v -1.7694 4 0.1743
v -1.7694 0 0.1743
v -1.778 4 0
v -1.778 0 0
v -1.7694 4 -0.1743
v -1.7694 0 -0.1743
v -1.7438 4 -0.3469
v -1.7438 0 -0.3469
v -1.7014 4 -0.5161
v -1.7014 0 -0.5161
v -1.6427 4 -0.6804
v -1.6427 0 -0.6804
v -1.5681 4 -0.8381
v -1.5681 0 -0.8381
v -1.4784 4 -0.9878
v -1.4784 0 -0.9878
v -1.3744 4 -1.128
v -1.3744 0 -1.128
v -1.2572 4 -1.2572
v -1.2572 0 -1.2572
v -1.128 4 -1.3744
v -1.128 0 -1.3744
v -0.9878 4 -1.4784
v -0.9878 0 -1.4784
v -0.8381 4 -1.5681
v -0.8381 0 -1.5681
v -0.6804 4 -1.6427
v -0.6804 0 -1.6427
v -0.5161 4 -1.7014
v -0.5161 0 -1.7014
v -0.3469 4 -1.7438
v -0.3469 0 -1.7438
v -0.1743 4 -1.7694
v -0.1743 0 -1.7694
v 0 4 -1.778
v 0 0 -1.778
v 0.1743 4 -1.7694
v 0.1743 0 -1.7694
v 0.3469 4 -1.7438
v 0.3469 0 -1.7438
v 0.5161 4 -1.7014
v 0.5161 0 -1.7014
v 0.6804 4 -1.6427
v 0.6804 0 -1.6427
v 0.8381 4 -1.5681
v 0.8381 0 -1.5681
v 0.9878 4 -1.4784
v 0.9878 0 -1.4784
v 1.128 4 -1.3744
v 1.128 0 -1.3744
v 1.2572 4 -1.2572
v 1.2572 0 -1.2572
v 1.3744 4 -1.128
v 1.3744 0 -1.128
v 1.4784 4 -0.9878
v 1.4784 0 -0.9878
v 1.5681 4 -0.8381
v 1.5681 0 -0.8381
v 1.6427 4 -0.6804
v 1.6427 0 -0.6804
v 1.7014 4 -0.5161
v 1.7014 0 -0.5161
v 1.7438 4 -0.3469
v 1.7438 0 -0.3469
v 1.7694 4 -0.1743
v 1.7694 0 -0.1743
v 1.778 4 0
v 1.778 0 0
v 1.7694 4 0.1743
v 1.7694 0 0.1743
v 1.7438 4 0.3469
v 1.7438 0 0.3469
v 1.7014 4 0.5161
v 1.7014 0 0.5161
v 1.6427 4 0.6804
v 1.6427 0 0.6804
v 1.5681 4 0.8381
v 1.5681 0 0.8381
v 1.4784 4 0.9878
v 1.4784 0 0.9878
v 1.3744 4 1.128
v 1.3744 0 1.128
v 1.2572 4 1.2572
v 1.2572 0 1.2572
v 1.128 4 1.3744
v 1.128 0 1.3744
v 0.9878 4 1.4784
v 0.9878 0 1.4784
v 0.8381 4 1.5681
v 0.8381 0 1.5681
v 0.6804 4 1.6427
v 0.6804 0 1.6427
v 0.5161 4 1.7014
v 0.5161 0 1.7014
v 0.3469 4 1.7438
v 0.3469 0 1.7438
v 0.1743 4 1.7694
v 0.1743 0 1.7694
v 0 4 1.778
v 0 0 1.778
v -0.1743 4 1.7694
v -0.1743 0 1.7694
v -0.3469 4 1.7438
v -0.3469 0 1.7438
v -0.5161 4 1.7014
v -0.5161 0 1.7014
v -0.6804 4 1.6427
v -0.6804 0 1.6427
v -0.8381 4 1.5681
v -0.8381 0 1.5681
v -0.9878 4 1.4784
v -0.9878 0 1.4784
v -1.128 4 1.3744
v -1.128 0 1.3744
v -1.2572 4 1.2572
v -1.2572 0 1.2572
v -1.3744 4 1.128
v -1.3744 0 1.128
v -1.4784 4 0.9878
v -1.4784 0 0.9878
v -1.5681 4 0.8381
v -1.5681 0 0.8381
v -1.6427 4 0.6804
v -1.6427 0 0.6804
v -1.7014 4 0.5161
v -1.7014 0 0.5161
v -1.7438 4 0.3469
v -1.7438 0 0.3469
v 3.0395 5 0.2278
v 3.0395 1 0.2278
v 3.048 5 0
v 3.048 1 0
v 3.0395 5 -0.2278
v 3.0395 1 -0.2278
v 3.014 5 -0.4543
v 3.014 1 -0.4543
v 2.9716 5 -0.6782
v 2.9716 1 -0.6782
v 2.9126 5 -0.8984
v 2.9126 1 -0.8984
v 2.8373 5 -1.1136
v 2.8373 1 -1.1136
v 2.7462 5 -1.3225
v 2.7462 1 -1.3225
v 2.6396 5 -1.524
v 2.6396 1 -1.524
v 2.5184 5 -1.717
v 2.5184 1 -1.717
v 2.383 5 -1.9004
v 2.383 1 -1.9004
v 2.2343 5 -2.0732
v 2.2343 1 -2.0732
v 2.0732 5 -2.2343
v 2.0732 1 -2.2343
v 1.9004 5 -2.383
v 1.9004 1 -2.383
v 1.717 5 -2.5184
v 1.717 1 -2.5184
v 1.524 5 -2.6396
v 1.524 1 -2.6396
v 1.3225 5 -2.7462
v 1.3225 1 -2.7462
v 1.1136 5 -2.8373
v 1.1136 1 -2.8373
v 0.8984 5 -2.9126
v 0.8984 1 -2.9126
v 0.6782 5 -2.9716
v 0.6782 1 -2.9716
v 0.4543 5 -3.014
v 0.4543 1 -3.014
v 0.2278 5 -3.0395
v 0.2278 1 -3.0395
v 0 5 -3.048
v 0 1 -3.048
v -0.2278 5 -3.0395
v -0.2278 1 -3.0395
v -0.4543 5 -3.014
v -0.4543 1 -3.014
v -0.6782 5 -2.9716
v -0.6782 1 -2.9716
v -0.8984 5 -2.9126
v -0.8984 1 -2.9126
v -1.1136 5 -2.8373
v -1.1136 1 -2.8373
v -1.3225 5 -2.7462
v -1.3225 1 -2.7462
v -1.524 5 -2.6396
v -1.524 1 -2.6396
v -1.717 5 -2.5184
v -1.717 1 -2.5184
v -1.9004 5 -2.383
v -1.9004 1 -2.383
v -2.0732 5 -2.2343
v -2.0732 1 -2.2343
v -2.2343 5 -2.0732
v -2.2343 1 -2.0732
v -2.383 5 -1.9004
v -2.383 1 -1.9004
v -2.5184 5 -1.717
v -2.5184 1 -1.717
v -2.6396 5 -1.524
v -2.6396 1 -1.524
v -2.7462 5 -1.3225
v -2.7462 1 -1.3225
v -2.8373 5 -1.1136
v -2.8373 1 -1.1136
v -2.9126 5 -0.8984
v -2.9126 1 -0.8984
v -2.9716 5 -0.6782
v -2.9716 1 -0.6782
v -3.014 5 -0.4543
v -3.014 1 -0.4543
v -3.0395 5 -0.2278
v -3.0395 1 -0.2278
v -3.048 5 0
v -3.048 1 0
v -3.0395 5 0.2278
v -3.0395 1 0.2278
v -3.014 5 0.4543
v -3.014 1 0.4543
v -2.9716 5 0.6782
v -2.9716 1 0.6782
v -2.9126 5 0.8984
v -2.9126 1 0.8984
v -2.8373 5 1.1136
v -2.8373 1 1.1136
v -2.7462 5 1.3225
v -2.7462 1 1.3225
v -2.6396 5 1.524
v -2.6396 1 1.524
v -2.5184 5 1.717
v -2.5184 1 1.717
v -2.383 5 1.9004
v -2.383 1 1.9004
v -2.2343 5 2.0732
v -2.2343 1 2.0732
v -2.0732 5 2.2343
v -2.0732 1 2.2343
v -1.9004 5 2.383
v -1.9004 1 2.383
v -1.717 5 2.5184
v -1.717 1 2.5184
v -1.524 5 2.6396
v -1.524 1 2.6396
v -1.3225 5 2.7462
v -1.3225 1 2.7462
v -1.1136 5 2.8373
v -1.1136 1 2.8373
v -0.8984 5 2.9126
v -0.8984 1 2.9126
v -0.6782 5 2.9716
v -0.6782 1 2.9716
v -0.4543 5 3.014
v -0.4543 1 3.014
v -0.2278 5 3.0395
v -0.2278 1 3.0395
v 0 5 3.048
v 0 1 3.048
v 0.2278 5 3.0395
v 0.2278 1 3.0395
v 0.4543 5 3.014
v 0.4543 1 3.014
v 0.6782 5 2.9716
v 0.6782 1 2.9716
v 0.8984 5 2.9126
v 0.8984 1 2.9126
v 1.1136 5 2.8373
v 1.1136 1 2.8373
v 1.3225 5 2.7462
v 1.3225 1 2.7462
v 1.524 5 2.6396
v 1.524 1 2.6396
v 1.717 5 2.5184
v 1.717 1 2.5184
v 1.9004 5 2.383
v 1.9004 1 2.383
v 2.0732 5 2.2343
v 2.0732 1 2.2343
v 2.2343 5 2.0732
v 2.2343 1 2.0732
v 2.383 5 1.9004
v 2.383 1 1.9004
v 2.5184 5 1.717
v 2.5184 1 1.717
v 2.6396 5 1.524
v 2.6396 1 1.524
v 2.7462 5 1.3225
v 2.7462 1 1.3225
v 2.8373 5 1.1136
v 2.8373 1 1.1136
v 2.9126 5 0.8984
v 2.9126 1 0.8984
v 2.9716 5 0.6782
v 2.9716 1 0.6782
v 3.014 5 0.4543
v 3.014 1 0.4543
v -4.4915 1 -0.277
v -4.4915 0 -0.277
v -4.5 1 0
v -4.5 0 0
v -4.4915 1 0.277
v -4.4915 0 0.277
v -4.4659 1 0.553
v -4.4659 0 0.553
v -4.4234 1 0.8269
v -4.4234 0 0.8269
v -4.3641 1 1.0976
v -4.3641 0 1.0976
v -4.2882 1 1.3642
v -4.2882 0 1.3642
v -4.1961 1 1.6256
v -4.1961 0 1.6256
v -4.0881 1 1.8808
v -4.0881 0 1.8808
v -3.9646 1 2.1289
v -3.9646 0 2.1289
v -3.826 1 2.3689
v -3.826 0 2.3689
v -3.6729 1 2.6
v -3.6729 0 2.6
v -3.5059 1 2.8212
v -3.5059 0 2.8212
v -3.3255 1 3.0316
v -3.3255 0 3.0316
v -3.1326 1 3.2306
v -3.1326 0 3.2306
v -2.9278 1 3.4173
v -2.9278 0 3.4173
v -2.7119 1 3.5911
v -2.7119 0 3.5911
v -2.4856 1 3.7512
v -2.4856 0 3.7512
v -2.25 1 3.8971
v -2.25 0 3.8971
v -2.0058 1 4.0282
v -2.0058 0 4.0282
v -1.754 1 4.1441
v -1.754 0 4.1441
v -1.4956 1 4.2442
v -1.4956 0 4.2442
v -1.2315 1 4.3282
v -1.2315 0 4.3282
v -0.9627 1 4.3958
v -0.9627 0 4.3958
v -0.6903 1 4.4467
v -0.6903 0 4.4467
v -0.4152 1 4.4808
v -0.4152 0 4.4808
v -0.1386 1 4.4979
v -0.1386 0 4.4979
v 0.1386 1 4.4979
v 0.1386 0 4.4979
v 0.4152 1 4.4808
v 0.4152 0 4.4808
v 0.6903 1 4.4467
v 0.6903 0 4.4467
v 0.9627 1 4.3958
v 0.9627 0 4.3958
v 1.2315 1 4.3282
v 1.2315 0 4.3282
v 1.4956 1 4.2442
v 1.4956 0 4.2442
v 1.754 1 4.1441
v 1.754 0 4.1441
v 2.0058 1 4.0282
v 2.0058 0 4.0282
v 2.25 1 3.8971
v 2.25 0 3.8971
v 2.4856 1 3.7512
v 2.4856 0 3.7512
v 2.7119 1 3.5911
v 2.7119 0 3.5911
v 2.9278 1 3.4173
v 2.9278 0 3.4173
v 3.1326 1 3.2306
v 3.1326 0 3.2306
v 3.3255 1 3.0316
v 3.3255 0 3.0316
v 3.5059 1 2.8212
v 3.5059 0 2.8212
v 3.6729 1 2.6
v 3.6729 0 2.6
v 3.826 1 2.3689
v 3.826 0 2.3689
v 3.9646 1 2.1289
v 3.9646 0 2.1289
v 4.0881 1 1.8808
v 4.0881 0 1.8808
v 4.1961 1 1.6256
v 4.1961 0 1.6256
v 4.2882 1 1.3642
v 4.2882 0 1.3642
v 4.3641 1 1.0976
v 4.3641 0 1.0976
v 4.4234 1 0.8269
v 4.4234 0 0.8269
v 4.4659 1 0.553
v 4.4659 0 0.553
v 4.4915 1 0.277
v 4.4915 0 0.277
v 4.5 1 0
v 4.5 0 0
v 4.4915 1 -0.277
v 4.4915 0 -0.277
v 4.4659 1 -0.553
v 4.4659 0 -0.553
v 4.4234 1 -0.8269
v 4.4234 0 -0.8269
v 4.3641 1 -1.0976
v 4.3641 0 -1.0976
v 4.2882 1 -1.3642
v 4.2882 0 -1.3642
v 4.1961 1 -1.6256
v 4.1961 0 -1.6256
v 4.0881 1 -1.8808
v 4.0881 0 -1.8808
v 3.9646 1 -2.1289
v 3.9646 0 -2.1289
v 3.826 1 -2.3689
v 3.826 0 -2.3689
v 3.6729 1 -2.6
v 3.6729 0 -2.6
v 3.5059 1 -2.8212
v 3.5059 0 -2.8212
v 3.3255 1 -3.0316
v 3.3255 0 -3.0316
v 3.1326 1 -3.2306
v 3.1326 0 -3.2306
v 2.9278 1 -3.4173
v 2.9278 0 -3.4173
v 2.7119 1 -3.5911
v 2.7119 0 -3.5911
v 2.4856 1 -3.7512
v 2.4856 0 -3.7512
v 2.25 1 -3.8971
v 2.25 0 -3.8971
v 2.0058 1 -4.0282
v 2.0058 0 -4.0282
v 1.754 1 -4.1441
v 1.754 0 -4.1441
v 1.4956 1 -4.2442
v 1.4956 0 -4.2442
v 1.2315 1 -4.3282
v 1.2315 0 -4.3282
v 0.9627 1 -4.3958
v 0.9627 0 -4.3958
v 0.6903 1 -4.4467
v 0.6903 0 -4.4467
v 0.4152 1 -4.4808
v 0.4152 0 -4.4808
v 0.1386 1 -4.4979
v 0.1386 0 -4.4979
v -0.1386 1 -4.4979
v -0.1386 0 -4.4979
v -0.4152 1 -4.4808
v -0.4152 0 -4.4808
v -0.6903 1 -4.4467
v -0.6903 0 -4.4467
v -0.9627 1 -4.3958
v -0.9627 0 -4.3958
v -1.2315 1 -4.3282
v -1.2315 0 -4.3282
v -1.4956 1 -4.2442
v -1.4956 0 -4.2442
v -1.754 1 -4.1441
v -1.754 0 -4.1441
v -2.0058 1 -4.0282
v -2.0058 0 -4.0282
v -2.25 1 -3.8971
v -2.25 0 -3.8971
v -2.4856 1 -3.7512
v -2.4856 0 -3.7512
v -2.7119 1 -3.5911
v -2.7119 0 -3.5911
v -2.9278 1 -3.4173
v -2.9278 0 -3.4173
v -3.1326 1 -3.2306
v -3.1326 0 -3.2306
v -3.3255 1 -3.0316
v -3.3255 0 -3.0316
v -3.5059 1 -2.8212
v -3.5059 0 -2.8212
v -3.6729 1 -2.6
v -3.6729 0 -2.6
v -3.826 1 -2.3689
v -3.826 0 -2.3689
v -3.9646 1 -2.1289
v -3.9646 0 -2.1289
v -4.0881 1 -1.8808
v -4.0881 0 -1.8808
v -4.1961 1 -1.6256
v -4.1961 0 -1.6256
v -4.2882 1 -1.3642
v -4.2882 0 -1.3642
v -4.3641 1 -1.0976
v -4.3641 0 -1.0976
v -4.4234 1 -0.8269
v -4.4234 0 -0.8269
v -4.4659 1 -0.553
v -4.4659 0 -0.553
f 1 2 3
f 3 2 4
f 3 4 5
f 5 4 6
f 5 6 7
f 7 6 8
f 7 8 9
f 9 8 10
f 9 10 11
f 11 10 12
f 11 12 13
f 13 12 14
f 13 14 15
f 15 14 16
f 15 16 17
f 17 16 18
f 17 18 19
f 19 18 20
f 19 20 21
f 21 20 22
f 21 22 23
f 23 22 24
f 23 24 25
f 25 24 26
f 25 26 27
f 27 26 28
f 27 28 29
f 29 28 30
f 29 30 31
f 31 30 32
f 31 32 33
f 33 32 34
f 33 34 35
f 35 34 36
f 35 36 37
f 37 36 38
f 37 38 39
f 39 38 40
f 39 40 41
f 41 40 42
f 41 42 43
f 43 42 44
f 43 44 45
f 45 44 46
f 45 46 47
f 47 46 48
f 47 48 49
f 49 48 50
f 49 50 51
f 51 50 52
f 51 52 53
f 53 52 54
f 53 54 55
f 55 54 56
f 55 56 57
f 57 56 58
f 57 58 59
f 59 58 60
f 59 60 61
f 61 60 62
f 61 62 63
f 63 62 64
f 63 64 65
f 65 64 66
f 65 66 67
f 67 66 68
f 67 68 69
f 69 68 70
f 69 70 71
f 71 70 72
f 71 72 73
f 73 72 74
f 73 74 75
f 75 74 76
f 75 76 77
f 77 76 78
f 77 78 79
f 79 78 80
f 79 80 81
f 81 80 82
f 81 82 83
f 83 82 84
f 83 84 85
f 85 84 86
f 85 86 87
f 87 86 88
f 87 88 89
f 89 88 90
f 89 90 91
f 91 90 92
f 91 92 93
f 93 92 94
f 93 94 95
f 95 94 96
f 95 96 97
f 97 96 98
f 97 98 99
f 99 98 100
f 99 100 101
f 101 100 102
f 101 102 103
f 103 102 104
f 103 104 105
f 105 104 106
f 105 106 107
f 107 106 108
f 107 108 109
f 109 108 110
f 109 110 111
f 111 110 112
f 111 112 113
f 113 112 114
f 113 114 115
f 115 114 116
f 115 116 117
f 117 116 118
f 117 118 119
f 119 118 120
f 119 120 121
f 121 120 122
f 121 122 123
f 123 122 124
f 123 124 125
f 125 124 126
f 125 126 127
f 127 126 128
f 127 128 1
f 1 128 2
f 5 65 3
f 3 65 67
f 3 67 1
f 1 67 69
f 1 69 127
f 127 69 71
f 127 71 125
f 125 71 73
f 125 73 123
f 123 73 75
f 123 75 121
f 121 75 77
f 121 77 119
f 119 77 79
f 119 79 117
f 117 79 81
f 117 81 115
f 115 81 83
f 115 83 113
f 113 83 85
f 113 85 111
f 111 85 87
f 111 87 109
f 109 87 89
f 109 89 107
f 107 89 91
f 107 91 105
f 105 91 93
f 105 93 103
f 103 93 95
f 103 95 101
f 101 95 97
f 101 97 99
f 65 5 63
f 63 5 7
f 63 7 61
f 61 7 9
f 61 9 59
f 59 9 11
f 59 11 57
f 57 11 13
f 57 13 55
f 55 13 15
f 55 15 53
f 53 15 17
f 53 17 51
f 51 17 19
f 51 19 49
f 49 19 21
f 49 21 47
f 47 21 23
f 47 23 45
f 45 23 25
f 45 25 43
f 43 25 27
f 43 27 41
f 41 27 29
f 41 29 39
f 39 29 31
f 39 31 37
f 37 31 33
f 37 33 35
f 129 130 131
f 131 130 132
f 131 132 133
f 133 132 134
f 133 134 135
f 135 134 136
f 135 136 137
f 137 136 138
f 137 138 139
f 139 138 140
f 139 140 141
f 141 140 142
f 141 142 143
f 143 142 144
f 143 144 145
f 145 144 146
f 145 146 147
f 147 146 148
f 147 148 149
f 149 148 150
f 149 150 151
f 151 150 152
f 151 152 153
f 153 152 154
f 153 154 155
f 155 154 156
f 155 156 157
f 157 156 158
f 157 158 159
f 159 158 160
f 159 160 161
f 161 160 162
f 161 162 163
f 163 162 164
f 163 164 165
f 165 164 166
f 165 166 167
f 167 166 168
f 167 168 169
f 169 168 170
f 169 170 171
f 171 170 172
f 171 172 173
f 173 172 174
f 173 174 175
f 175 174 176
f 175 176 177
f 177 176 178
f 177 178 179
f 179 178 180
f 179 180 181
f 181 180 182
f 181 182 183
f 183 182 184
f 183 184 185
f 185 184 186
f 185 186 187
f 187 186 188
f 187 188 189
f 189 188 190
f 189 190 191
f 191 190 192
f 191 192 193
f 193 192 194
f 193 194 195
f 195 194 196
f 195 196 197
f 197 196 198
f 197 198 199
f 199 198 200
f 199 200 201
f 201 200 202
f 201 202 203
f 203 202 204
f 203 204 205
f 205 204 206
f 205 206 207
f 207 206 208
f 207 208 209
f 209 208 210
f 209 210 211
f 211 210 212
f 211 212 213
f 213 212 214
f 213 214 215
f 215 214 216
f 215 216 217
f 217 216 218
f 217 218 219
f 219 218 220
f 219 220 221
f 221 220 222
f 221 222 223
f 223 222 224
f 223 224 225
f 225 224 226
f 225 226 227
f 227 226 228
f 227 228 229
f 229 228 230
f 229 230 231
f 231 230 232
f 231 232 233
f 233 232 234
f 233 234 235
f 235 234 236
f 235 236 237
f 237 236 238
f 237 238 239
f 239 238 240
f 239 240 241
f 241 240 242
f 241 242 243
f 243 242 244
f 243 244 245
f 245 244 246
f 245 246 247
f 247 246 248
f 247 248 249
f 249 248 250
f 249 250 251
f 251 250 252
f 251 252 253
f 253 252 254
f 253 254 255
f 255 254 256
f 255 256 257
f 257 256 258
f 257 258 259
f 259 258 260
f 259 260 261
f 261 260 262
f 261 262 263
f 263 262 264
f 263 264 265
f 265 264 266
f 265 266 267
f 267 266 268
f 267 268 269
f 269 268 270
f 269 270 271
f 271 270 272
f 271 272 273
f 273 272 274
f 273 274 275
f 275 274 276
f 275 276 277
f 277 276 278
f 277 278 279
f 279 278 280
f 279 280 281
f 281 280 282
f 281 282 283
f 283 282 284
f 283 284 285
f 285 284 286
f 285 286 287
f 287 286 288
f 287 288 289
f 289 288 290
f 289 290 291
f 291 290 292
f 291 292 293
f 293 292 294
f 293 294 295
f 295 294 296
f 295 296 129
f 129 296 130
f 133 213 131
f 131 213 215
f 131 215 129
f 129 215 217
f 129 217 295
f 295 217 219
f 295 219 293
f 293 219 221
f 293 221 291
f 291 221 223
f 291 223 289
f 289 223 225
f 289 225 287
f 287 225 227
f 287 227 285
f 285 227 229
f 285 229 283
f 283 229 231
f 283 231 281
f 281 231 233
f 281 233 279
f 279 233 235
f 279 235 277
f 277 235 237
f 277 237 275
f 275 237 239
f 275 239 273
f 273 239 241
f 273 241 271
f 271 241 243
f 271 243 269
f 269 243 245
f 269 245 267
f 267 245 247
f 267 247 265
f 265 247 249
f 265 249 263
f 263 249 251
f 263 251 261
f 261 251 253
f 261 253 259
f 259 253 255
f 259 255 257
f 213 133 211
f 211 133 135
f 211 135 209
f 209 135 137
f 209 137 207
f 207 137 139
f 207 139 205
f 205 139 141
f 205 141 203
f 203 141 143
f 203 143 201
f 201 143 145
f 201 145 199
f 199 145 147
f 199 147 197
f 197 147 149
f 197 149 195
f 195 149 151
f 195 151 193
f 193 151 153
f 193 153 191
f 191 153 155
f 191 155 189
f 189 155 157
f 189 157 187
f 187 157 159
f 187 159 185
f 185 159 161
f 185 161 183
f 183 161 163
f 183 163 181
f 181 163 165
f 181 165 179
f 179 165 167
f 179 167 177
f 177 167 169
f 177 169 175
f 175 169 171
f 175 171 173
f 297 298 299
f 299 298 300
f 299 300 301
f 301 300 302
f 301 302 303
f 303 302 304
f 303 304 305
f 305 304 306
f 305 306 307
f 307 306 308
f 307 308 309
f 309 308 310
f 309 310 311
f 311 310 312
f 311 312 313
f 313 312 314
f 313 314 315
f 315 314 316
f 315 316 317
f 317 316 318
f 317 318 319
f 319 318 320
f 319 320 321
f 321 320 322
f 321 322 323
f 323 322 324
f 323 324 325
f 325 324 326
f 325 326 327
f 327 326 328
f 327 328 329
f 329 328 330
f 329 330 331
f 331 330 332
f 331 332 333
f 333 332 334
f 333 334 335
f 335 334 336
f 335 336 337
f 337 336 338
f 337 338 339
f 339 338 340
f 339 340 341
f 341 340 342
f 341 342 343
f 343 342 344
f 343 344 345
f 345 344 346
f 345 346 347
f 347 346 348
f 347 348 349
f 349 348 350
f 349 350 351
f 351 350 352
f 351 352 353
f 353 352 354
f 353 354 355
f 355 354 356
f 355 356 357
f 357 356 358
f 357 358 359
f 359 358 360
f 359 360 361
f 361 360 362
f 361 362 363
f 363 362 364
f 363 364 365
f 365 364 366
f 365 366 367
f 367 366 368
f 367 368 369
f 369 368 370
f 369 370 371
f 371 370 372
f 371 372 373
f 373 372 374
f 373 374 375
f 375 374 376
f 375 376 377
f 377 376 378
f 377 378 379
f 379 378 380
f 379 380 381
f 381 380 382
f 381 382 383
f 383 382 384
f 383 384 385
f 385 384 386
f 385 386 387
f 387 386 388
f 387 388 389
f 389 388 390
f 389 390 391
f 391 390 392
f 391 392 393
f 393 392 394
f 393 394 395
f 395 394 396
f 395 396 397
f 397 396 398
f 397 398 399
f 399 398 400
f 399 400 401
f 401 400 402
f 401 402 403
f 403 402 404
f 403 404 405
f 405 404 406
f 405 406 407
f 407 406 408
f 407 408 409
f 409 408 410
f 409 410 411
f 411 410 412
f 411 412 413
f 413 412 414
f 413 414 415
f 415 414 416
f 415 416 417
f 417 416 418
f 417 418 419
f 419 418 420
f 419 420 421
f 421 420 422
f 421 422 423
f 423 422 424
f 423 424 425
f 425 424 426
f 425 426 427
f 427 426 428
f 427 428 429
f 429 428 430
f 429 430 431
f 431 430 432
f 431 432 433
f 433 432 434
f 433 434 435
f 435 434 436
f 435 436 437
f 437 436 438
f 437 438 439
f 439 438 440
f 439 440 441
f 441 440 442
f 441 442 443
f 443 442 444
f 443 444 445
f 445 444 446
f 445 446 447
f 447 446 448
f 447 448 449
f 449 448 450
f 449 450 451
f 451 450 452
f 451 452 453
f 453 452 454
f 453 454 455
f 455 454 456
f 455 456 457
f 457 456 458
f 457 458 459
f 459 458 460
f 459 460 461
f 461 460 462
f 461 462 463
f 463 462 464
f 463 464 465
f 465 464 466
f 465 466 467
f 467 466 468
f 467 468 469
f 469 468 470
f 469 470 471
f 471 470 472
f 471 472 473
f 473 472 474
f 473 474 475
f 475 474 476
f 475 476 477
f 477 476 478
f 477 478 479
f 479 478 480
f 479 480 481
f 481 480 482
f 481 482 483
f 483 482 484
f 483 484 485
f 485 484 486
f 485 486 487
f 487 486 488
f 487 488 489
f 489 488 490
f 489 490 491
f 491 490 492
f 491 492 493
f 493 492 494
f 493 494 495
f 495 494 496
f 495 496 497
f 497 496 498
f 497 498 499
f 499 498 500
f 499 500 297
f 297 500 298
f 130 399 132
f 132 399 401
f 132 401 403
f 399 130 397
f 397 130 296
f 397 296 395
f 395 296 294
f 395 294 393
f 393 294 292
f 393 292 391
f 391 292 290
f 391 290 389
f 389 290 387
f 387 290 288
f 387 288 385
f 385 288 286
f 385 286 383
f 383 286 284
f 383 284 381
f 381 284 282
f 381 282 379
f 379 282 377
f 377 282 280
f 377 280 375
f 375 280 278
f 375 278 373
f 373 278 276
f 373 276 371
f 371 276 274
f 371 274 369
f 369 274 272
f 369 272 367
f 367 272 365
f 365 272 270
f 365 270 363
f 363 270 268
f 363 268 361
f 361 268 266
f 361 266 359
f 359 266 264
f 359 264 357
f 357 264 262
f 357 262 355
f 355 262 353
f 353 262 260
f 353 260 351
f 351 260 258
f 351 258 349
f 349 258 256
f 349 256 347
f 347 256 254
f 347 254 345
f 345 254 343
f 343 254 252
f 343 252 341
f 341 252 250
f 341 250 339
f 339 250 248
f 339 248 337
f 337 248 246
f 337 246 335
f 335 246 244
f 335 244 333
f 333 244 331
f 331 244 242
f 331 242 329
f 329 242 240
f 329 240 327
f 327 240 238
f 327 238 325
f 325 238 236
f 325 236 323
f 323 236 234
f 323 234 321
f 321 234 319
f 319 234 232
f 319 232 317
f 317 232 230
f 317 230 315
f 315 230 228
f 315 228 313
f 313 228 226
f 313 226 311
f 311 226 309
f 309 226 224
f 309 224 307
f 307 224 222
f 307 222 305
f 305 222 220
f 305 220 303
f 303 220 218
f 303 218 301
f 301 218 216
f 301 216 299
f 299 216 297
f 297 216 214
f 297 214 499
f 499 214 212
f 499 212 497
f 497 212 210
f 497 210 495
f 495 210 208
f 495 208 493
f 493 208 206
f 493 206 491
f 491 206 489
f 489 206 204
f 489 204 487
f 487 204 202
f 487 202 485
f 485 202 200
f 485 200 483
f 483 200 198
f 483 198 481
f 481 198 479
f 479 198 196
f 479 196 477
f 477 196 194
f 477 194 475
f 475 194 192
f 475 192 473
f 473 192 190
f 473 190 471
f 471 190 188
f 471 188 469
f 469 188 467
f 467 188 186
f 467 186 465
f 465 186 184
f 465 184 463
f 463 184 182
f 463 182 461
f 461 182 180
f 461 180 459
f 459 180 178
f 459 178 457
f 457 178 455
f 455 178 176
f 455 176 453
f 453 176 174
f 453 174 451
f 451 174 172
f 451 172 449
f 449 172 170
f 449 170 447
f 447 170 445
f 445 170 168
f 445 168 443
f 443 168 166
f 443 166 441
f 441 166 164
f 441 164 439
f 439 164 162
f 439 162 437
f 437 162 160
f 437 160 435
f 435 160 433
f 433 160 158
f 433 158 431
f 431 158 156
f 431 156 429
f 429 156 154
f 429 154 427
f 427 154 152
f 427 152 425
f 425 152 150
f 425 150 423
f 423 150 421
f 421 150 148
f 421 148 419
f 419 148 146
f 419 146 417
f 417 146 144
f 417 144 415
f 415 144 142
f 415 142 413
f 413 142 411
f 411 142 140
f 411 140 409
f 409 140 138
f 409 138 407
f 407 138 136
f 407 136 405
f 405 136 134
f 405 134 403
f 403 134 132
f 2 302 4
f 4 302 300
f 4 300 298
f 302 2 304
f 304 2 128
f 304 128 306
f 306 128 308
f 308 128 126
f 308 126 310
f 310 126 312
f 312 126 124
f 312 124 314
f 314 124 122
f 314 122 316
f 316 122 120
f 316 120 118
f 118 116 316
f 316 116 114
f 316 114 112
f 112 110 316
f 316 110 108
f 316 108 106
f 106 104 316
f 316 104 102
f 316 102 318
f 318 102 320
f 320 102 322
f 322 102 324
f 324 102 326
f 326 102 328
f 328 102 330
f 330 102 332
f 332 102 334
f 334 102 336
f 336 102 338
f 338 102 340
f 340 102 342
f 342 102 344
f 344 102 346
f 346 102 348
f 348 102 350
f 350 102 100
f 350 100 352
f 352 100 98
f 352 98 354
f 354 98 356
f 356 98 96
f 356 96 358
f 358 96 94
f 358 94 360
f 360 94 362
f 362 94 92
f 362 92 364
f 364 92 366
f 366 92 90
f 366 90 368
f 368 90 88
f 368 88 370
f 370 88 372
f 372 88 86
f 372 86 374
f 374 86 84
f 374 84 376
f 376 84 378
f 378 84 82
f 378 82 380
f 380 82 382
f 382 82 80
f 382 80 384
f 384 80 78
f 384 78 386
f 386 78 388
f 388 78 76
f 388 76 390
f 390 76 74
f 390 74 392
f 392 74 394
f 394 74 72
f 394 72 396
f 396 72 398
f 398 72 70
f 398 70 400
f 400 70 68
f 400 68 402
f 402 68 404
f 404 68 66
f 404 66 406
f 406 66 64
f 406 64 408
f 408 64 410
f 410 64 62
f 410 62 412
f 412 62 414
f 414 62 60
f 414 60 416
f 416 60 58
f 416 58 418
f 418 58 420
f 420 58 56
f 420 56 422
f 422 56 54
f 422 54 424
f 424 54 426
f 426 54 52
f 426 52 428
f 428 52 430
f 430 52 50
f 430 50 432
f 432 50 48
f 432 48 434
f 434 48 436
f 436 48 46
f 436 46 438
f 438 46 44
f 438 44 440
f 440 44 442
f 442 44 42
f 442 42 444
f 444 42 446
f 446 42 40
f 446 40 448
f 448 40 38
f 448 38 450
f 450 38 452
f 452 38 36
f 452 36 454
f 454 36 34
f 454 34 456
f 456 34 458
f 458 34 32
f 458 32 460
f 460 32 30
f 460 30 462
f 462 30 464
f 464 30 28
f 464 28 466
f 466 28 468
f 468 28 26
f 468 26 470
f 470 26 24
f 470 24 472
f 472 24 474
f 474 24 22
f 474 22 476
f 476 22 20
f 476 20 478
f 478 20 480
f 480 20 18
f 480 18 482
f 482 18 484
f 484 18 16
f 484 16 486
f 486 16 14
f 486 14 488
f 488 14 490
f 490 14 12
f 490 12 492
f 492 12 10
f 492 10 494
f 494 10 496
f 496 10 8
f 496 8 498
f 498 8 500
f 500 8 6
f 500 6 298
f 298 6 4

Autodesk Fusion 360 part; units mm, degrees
sketch "Sketch1" plane through (0, 0, 0) normal (0, 1, 0) x (1, 0, 0)
  circle A0 centre (0, 0) radius 4.5
  dimension "d1" = 9
extrude "Extrude1" add sketch "Sketch1" along normal blind 1
sketch "Sketch2" plane through (0, 1, 0) normal (0, 1, 0) x (-1, 0, 0)
  circle A0 centre (0, 0) radius 4.5
  circle A1 centre (0, 0) radius 3.048
  dimension "d4" = 6.096
extrude "Extrude2" add sketch "Sketch2" along normal blind 4 contours A1
sketch "Sketch3" plane through (0, 0, 0) normal (0, -1, 0) x (1, 0, 0)
  circle A0 centre (0, 0) radius 4.5
  circle A1 centre (0, 0) radius 1.778
  dimension "d7" = 3.556
extrude "Extrude3" cut sketch "Sketch3" against normal blind 4 contours A1
